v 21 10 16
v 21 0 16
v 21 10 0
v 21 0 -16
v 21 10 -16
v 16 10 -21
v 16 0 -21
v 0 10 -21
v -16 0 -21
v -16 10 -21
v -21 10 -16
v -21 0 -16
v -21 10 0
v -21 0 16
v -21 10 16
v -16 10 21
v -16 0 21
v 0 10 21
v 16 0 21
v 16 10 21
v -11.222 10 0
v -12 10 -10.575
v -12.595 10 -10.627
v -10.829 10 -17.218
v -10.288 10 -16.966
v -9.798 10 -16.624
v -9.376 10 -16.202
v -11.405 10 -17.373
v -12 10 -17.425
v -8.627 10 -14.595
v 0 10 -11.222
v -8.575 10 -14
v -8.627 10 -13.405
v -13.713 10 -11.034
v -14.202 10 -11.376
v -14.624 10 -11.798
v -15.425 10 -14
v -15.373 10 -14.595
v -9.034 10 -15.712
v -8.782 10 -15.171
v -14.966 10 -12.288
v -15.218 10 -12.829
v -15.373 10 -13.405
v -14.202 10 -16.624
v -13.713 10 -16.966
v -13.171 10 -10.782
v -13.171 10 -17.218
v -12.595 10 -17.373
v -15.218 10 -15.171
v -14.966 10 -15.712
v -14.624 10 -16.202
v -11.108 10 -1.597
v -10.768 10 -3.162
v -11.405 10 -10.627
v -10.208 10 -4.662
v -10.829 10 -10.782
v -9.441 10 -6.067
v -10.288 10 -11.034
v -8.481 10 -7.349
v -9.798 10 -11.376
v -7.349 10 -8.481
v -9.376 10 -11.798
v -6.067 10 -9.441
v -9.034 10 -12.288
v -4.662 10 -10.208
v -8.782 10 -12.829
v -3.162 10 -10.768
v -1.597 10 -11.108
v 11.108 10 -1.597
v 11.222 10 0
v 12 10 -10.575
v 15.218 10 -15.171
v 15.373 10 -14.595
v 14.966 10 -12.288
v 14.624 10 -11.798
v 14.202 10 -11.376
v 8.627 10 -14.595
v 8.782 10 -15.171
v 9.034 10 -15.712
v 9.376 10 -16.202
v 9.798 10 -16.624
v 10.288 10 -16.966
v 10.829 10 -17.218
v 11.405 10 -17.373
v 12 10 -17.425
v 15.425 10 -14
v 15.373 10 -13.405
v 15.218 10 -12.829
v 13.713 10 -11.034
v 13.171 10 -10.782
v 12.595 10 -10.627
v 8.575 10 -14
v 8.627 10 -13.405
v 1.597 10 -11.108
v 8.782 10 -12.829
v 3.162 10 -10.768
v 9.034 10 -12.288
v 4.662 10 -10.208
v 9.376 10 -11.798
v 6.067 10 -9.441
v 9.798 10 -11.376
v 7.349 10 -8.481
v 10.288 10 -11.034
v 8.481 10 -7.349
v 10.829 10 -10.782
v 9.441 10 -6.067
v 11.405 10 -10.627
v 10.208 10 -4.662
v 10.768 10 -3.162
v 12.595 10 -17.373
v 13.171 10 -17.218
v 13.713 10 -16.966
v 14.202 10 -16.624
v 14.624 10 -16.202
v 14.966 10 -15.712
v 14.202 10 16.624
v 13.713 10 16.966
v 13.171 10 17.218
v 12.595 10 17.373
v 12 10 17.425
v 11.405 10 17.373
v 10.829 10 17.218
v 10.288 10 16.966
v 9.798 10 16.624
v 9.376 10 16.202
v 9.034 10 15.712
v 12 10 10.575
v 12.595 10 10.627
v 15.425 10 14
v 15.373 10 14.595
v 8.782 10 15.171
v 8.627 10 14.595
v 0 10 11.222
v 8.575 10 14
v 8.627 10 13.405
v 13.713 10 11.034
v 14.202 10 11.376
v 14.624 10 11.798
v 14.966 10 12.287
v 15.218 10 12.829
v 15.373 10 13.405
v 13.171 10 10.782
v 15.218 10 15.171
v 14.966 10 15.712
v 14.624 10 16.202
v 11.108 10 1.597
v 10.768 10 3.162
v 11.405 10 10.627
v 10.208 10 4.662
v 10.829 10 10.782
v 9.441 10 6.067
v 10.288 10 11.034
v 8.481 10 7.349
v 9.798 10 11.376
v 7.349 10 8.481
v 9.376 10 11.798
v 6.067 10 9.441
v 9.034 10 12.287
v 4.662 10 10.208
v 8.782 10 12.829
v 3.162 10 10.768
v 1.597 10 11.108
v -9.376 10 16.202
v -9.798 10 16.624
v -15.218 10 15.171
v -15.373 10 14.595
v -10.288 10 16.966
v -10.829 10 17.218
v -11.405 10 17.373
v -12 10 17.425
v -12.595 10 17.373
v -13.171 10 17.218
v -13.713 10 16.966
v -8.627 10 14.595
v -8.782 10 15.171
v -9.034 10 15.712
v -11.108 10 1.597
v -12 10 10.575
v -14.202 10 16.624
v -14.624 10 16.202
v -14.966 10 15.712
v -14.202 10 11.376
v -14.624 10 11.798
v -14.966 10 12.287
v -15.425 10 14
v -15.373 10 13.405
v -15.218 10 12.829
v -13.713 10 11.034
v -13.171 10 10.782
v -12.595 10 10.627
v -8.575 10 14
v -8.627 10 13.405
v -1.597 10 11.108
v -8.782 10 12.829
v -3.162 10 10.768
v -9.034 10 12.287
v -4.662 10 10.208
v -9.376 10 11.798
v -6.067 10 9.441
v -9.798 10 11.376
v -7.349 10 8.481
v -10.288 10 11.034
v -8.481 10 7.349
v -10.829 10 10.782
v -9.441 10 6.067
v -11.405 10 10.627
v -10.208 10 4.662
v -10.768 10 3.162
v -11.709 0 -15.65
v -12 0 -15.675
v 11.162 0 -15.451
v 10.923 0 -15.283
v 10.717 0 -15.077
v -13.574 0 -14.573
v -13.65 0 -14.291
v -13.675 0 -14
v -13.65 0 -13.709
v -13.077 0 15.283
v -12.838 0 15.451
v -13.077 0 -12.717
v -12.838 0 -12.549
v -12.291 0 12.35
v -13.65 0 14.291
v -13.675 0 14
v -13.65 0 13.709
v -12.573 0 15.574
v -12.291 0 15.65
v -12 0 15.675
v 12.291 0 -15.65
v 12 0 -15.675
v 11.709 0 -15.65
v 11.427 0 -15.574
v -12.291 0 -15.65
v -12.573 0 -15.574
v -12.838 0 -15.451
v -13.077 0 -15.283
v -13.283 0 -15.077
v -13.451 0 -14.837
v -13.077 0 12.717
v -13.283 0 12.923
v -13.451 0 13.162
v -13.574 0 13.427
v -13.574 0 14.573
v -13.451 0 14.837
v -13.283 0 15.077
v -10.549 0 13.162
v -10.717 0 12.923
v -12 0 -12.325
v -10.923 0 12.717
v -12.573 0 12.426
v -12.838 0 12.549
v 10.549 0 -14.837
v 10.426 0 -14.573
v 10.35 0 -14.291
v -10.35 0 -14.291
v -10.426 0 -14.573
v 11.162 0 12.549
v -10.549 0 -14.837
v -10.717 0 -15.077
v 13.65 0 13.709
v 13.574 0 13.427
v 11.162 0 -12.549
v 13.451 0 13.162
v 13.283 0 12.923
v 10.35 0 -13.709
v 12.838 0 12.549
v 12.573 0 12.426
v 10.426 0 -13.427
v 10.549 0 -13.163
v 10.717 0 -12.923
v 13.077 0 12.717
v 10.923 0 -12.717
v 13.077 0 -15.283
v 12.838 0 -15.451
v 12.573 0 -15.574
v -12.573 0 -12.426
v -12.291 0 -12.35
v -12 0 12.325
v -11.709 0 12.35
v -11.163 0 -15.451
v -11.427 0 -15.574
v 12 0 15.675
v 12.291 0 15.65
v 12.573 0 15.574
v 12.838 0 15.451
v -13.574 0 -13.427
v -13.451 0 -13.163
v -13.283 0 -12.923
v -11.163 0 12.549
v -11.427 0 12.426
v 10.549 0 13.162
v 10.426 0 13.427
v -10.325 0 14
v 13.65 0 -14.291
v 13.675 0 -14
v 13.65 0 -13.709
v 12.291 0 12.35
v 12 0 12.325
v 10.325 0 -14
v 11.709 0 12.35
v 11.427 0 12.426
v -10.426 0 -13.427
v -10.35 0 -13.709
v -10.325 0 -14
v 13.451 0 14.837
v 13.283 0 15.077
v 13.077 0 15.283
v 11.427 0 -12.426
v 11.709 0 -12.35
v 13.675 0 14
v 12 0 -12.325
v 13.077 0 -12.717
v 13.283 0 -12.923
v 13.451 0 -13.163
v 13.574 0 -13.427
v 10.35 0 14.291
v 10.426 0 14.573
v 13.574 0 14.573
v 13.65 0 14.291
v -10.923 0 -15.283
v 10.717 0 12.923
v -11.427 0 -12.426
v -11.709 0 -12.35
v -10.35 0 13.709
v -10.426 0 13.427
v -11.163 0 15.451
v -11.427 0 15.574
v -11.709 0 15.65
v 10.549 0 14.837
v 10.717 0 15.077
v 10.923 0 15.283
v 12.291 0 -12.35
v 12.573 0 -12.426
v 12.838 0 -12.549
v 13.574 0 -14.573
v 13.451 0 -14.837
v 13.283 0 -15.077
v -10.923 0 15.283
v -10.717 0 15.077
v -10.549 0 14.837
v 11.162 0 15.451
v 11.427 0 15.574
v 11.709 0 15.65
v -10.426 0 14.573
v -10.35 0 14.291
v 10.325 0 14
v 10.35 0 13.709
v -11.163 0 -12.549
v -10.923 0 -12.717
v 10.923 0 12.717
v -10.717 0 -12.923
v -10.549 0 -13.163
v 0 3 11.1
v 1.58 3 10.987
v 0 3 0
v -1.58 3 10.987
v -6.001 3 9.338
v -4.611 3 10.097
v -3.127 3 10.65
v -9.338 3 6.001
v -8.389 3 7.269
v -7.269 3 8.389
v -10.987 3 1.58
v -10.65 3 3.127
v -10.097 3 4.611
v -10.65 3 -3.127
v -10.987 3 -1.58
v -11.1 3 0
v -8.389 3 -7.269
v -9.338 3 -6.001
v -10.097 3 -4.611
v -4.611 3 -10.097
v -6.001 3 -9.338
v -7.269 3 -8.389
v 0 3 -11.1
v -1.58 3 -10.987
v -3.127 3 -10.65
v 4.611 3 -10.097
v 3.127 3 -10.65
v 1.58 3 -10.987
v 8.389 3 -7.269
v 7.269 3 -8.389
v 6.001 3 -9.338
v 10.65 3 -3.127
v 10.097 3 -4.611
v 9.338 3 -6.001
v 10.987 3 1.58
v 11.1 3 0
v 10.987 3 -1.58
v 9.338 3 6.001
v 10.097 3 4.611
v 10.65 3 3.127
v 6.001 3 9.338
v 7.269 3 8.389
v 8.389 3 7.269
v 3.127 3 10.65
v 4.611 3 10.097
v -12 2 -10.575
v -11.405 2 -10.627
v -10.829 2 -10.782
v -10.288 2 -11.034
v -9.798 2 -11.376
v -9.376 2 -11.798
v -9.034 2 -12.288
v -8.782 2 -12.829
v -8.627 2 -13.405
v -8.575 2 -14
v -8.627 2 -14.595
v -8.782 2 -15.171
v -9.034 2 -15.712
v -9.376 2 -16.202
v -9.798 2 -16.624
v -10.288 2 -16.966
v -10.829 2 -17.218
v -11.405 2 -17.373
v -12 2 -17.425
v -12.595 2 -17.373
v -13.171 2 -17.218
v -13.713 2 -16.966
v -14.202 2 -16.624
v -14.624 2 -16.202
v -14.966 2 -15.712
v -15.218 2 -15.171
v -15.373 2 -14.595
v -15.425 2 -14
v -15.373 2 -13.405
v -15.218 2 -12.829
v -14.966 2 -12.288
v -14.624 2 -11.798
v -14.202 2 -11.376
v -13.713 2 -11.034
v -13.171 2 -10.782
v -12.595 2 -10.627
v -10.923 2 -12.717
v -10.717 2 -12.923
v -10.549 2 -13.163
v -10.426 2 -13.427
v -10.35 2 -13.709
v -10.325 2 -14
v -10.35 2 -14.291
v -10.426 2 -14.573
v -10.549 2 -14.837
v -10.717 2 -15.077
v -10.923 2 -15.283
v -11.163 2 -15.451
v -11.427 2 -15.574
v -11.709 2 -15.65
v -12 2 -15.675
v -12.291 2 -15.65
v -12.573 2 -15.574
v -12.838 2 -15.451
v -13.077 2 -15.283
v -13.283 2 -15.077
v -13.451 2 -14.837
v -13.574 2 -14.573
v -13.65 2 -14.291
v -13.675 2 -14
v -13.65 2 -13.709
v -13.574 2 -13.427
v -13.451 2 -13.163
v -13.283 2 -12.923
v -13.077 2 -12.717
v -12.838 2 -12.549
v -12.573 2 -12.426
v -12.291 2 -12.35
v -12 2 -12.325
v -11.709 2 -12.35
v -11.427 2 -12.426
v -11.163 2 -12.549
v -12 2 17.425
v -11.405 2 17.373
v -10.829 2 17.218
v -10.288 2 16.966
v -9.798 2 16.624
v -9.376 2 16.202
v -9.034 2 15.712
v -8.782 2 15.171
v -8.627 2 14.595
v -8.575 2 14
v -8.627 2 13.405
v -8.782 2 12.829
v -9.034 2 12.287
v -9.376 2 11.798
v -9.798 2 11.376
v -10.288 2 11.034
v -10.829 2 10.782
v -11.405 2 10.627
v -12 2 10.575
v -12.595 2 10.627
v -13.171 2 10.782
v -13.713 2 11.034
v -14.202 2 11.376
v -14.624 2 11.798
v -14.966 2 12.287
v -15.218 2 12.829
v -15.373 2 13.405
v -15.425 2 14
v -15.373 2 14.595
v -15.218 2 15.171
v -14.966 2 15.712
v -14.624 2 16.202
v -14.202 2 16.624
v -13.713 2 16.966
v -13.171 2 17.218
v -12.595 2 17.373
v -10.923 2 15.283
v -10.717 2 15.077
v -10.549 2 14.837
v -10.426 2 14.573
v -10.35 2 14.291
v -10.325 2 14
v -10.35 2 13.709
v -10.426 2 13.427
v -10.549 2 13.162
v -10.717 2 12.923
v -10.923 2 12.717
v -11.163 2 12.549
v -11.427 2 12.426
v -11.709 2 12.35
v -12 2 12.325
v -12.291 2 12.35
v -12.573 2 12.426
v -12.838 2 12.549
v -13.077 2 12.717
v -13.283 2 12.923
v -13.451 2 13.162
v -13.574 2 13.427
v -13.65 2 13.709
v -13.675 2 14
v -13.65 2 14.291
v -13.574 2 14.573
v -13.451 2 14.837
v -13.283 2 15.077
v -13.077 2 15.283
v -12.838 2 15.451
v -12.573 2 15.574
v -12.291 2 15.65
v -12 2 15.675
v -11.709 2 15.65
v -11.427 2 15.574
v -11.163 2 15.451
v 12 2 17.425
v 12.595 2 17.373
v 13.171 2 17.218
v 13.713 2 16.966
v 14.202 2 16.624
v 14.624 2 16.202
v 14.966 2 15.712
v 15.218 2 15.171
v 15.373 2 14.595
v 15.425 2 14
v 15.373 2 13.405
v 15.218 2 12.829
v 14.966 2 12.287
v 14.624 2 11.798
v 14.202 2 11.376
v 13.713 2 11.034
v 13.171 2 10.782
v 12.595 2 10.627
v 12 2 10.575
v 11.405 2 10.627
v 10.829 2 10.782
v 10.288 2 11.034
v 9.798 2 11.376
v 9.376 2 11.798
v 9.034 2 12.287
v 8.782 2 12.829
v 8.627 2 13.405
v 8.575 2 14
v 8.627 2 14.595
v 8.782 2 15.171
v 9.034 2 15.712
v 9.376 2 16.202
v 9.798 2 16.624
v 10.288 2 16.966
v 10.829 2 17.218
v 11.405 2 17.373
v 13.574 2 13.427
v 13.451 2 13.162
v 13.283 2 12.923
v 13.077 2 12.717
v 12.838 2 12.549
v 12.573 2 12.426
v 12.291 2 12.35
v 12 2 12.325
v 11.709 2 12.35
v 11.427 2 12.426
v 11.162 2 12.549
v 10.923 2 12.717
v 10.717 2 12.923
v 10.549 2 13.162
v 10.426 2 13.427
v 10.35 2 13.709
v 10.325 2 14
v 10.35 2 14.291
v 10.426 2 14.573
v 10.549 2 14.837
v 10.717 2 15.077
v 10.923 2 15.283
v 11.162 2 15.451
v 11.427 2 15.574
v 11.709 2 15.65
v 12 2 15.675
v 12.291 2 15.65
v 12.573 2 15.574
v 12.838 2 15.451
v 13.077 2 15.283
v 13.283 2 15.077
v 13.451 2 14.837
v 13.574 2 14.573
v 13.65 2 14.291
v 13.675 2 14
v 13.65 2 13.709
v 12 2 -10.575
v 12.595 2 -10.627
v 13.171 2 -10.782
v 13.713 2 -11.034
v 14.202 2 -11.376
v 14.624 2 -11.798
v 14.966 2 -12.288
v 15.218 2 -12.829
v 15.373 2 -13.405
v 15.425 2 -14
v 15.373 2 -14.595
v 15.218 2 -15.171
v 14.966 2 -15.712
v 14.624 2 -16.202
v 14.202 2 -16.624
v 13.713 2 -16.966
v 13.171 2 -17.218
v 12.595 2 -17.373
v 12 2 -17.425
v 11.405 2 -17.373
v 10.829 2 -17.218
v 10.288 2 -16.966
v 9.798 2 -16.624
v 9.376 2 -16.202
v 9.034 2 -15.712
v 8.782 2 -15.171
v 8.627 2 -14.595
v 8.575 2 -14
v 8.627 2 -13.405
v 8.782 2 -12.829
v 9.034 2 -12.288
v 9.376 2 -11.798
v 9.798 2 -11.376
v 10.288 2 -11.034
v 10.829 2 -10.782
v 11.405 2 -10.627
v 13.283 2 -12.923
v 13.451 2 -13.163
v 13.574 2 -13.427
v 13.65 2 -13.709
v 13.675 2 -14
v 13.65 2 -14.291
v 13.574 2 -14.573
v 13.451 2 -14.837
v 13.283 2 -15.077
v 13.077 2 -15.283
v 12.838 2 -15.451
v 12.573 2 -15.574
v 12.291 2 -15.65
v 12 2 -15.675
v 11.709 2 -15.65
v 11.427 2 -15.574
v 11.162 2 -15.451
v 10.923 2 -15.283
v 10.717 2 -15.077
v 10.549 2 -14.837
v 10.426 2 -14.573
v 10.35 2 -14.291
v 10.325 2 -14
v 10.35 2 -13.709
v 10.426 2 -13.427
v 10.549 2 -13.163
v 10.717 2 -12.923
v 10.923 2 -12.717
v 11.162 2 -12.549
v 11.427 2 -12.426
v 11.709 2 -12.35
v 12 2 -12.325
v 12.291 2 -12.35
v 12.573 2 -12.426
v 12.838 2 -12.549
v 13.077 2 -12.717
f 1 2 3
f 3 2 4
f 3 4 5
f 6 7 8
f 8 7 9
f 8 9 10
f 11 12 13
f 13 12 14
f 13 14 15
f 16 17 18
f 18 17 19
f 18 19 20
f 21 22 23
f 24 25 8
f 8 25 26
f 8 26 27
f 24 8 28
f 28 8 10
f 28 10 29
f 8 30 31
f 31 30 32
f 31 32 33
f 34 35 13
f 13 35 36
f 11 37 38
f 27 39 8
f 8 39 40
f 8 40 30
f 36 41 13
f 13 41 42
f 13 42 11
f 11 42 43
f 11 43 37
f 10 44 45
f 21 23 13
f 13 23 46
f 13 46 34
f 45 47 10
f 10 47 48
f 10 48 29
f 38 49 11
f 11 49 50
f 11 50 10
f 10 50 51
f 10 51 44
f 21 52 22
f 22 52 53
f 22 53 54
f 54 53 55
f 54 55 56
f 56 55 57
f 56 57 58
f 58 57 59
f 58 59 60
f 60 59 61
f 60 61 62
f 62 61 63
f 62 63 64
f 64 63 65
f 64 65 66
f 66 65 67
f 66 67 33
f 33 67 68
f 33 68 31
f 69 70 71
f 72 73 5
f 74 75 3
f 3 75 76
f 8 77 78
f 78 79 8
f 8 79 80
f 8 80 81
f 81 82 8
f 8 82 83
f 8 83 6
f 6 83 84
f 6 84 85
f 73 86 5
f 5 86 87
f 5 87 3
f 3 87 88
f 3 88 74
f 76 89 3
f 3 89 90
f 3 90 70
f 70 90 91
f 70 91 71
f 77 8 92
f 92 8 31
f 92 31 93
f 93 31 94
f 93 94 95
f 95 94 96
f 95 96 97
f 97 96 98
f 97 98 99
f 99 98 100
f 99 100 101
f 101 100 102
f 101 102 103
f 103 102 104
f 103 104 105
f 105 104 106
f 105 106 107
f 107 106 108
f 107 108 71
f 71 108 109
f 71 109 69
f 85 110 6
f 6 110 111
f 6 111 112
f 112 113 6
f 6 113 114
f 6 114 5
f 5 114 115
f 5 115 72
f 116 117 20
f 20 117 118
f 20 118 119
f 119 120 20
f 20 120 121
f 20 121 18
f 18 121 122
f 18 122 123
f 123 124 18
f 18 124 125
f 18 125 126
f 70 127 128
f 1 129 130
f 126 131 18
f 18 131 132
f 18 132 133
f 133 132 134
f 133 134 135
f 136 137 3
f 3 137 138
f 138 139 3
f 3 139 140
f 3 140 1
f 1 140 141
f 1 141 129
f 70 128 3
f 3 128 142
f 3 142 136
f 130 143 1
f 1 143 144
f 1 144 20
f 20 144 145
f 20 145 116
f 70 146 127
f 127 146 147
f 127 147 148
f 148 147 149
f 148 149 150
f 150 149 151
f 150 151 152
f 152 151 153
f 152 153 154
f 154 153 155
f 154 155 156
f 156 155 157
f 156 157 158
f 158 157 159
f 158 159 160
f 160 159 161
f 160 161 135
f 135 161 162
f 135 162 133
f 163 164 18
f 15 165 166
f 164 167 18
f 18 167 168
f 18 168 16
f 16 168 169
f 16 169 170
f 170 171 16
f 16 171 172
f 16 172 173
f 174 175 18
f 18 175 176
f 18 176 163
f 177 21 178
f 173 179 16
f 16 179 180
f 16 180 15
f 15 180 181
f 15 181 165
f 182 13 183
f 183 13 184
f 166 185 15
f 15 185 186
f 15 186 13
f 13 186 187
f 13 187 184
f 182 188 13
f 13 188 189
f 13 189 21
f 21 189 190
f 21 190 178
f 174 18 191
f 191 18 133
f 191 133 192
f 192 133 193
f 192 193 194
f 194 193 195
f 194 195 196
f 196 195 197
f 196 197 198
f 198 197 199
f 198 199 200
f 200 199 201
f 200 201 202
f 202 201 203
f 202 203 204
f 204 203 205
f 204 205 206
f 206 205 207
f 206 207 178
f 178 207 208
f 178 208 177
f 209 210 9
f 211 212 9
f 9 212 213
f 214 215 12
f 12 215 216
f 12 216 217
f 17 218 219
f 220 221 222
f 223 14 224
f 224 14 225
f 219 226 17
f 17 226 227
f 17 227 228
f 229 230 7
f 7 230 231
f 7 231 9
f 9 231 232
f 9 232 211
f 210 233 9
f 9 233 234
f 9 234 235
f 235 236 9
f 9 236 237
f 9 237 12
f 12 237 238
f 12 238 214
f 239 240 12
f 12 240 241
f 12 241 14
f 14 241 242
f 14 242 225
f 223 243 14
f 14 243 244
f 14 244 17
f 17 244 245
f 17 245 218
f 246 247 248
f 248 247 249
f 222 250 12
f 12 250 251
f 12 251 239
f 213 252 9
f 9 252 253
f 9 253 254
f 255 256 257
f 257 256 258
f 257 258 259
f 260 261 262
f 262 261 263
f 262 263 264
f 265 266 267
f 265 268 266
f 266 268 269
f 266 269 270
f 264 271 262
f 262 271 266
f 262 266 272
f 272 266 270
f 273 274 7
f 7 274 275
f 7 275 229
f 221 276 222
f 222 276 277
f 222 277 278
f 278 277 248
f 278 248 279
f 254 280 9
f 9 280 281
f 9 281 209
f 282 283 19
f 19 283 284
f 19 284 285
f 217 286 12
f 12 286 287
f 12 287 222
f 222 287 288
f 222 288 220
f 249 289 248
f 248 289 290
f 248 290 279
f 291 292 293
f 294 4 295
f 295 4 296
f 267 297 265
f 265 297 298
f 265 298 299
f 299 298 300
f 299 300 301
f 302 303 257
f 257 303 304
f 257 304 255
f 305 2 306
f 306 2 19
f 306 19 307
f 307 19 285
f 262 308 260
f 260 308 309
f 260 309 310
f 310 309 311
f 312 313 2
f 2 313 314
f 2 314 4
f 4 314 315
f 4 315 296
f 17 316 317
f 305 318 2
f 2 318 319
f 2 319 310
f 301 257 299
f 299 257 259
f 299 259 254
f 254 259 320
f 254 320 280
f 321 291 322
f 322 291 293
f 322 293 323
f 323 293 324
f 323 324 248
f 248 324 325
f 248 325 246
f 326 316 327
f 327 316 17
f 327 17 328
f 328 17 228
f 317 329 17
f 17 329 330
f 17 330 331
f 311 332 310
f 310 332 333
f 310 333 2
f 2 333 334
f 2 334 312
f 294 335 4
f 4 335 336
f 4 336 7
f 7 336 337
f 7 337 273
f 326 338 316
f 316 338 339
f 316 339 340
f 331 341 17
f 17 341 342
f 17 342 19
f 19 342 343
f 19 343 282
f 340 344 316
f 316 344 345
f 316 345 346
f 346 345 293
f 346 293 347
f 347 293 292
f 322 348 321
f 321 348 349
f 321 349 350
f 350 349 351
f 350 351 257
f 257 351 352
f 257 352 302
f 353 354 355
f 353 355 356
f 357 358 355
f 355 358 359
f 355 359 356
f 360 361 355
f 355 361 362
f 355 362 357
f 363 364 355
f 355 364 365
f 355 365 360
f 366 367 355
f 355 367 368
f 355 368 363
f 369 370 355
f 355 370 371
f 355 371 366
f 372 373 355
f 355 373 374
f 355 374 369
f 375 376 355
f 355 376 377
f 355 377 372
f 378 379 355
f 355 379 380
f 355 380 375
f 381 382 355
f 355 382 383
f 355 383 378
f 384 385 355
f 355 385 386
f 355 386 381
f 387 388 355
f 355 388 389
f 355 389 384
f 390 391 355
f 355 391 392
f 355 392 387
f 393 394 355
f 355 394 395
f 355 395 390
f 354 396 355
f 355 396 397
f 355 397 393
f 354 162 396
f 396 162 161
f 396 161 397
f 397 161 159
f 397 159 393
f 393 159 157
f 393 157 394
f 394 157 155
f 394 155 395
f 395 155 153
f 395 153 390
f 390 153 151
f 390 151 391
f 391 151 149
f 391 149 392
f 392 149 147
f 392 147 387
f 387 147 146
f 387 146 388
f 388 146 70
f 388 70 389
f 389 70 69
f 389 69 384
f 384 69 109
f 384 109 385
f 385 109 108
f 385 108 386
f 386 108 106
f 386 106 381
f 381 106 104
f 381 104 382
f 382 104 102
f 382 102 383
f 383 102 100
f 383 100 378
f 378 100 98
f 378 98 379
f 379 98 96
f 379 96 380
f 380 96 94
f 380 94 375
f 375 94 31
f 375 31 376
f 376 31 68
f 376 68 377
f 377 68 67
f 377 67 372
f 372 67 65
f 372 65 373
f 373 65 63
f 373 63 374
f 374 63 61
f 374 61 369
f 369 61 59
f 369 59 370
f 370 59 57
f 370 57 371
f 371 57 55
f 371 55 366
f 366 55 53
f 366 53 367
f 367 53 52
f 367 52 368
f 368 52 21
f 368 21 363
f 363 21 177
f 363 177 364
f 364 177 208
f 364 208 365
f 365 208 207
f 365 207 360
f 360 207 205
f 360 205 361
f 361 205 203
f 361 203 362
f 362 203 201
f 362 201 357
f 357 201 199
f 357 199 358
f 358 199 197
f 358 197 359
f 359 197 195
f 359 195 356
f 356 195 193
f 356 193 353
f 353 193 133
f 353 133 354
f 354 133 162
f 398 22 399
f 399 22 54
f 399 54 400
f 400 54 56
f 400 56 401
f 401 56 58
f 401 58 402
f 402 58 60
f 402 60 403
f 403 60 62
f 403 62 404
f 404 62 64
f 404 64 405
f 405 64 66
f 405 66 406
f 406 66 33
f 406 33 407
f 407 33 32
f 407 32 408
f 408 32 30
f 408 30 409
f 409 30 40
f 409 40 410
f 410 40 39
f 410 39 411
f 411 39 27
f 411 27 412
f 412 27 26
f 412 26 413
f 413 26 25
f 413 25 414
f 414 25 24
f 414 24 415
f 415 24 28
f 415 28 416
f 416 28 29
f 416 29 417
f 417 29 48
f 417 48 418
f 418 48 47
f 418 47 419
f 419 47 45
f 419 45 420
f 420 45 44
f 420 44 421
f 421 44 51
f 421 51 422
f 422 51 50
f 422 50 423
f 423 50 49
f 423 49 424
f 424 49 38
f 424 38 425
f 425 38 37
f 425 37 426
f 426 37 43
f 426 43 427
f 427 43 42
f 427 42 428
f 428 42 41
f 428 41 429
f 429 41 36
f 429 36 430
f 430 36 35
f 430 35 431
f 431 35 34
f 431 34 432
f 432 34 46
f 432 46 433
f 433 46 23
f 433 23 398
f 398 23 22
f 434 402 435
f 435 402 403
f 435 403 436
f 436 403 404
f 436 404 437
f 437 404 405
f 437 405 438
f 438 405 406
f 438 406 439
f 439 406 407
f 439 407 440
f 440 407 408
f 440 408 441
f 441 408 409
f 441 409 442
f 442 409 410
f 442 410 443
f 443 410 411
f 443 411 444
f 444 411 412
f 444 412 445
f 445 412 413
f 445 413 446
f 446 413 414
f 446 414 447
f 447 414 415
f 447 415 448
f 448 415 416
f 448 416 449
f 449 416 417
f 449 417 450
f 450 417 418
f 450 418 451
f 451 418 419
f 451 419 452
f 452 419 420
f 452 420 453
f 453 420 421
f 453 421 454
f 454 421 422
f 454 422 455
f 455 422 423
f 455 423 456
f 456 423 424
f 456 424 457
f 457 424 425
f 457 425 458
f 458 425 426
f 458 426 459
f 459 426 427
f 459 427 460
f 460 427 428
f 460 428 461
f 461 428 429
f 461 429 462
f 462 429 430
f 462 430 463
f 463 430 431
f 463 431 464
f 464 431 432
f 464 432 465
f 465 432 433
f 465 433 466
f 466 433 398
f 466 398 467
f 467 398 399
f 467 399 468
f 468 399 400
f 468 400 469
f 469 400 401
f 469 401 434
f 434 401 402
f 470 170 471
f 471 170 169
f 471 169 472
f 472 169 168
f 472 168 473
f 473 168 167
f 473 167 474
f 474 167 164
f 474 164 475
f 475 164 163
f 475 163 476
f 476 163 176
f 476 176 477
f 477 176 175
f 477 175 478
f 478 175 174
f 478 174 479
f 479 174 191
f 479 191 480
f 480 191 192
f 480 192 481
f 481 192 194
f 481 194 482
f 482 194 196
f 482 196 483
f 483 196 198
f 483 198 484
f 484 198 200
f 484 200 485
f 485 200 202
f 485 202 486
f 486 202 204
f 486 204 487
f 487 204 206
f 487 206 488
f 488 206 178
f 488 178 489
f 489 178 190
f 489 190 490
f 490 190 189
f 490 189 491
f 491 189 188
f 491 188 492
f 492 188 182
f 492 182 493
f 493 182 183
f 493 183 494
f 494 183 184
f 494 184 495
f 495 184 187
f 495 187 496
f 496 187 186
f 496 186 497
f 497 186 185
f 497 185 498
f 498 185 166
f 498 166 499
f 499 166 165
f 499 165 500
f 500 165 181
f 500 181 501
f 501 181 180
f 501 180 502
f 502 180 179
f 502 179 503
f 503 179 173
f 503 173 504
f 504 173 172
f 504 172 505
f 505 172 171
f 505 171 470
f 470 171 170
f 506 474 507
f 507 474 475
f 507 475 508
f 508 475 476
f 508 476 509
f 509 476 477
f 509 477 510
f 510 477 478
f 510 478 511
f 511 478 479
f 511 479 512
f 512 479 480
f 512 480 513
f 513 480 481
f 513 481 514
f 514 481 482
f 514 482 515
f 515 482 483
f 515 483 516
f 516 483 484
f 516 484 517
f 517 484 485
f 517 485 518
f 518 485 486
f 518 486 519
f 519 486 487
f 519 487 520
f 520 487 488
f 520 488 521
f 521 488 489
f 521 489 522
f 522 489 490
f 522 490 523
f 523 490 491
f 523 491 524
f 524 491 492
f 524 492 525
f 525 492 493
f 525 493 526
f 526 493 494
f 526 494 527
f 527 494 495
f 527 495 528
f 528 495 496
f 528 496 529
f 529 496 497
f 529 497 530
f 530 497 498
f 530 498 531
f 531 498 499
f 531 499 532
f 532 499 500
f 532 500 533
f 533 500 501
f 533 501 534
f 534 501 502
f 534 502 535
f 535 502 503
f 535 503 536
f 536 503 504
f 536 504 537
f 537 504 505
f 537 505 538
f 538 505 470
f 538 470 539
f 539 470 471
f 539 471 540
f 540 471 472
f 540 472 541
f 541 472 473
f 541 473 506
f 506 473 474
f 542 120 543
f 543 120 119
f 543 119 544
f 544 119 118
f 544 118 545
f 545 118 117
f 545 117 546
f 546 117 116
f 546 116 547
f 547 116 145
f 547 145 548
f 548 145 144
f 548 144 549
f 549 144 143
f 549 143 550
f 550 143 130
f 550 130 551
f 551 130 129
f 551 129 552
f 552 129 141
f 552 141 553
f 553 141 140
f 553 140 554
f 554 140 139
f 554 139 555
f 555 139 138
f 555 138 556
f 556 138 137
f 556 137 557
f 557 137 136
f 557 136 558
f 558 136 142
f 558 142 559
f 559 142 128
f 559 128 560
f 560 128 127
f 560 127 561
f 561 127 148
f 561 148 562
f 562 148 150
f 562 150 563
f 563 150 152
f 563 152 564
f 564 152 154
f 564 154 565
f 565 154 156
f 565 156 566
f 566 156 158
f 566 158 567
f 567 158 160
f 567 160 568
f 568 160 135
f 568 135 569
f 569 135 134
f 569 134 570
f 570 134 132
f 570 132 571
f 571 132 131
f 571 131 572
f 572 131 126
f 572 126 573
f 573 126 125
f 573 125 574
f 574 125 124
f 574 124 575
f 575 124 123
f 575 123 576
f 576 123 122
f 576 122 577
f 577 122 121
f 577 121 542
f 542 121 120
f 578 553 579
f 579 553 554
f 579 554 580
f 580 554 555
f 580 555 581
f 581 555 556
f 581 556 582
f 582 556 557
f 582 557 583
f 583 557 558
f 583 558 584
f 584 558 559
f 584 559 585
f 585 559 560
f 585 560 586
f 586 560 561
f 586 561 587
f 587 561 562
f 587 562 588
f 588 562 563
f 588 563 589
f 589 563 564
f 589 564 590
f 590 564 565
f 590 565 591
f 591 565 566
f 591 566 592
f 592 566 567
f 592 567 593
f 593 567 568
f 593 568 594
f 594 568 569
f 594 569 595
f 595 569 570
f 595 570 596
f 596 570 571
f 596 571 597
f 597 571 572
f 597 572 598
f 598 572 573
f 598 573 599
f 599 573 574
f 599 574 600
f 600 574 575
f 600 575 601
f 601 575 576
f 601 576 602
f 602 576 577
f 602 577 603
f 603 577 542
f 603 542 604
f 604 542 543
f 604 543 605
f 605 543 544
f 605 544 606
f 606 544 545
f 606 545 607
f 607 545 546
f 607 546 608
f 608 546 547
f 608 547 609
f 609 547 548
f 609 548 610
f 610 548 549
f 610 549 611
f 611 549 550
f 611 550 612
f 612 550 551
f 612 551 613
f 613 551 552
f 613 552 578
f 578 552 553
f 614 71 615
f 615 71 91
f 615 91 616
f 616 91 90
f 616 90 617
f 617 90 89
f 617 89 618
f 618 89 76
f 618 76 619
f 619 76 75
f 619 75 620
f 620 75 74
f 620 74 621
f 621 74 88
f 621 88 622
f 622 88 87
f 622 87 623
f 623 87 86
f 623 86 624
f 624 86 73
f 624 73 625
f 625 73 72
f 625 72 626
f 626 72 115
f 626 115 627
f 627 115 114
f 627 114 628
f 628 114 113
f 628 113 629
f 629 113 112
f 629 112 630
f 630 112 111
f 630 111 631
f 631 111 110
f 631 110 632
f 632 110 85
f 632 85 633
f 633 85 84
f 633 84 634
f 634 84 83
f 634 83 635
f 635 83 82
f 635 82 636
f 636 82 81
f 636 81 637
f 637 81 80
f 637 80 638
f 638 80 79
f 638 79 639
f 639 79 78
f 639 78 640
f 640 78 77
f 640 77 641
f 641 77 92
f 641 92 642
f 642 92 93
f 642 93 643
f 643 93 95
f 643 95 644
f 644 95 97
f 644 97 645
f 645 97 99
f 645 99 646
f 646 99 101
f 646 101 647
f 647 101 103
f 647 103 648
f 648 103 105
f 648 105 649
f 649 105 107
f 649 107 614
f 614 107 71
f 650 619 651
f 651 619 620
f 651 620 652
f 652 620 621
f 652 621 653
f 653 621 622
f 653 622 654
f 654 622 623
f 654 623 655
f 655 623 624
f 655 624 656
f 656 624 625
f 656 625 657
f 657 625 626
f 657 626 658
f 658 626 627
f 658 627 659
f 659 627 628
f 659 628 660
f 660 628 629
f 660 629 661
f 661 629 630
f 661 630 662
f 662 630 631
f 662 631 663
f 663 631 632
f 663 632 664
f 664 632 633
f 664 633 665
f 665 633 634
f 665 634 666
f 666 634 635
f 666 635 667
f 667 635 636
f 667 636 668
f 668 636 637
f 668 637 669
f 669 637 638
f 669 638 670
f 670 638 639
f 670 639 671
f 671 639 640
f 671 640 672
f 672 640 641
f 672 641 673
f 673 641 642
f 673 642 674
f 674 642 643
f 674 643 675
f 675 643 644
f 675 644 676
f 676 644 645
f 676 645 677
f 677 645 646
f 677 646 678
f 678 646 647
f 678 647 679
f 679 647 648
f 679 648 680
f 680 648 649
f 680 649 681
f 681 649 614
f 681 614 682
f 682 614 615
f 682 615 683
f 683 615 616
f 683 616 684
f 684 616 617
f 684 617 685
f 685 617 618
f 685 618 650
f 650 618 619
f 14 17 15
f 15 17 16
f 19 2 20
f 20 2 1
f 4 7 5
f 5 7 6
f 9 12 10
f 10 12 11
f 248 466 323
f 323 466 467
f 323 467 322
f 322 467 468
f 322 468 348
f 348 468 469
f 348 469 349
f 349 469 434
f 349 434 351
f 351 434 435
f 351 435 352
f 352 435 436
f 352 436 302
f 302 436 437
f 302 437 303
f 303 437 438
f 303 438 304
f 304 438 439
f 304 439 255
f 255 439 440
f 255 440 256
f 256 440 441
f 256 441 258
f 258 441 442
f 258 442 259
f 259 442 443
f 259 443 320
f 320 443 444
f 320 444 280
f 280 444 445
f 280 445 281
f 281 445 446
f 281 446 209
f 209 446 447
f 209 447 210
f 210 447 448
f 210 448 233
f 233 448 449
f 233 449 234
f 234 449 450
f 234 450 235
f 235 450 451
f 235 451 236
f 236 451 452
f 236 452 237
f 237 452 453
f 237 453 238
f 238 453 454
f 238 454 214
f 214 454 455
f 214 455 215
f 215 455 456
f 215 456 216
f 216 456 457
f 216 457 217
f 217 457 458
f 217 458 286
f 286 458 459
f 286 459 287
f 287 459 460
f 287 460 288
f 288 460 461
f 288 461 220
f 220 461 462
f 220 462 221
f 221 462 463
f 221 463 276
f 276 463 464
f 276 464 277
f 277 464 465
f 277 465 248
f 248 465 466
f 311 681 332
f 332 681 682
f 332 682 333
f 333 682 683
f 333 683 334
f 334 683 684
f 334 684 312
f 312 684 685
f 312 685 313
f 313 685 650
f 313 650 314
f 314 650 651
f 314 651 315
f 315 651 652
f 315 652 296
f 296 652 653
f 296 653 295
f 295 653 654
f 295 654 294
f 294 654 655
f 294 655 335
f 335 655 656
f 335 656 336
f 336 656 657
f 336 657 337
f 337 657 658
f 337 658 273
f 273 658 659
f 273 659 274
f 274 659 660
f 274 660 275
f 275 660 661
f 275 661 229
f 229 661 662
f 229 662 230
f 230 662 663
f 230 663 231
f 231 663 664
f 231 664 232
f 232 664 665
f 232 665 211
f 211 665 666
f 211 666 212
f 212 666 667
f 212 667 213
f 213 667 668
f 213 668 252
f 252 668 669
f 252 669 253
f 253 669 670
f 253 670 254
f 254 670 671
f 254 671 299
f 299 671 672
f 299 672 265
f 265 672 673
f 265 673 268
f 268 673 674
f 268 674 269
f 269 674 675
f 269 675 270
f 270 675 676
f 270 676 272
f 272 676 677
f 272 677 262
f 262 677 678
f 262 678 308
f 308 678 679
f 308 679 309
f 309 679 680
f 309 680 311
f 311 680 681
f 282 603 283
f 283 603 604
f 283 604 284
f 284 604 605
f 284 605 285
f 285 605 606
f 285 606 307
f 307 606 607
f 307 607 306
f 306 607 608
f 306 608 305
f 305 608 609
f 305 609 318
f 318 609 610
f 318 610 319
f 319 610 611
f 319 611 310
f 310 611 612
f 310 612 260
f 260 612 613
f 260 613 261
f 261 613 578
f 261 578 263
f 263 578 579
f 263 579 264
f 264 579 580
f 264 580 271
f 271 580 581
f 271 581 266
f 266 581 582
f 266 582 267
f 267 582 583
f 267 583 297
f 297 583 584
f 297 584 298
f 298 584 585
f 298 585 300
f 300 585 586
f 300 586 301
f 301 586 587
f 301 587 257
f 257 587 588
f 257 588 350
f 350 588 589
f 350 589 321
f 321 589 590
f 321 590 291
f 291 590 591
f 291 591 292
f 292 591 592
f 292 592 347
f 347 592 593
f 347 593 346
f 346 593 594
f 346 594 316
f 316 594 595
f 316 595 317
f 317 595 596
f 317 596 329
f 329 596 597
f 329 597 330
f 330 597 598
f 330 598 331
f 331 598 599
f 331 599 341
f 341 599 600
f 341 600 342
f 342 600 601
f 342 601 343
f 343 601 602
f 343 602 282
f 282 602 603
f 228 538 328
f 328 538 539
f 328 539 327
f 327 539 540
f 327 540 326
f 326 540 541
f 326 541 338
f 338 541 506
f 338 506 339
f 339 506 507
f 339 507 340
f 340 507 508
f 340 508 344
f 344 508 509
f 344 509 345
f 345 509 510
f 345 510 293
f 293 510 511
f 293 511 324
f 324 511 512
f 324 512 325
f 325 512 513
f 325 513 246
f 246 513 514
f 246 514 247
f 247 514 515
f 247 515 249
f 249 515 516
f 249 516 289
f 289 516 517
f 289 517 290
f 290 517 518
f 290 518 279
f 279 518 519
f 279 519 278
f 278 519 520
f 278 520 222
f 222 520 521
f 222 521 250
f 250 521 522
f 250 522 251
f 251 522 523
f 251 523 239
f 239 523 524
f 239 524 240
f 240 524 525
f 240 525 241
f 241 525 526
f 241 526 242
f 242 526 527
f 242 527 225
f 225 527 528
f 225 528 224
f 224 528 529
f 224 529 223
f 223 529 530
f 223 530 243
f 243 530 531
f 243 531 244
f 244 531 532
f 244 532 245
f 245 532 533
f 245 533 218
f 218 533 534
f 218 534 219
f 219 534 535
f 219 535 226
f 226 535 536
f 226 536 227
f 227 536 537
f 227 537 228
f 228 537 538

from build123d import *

# Parameters (mm, degrees)
SKETCH1_W           = 42
SKETCH1_H           = 42
BOSS_EXTRUDE1_DEPTH = 10
SKETCH2_R           = 11.1
CUT_EXTRUDE1_DEPTH  = 7
CHAMFER1_SIZE       = 0.122185454
CHAMFER1_SIZE_2     = 7
SKETCH3_R           = 3.425
CUT_EXTRUDE2_DEPTH  = 8
CHAMFER2_SIZE       = 5
CUT_EXTRUDE3_REACH  = 32.757
SKETCH4_R           = 1.675


with BuildPart() as part:
    # Sketch1 → Boss-Extrude1 (new body)
    with BuildSketch(Plane(origin=(0, 0, 0), x_dir=(1, 0, 0), z_dir=(0, 1, 0))):
        Rectangle(SKETCH1_W, SKETCH1_H)
    extrude(amount=BOSS_EXTRUDE1_DEPTH)

    # Sketch2 → Cut-Extrude1 (cut)
    with BuildSketch(Plane(origin=(0, 10, 0), x_dir=(1, 0, 0), z_dir=(0, 1, 0))):
        with Locations(Location((0, 0, 0), (0, 0, 270))):
            Circle(SKETCH2_R)
    extrude(amount=-CUT_EXTRUDE1_DEPTH, mode=Mode.SUBTRACT)

    # Chamfer1
    # the kernel refuses this chamfer: 7, 0.122185454 mm, written as the material it takes off along each edge
    with BuildSketch(Plane(origin=(0, 10, 0), x_dir=(0, 0, 1), z_dir=(-1, 0, 0))) as chamfer1_piece_1_section:
        Polygon((11.1 + CHAMFER1_SIZE * 1.00000000407, 0), (11.1, -CHAMFER1_SIZE_2), (11.1, 0), align=None)
    chamfer1_piece_1 = revolve(axis=Axis((0, 10, 0), (0, 1, 0)), mode=Mode.PRIVATE)
    chamfer1_piece_1 = split(chamfer1_piece_1, bisect_by=Plane(origin=(0, 3, -11.117232441), z_dir=(0, 1, 0)), keep=Keep.TOP, mode=Mode.PRIVATE)
    add(chamfer1_piece_1, mode=Mode.SUBTRACT)

    # Sketch3 → Cut-Extrude2 (cut)
    with BuildSketch(Plane(origin=(0, 10, 0), x_dir=(1, 0, 0), z_dir=(0, 1, 0))):
        with Locations(Location((-12, 14, 0), (0, 0, 270))):
            Circle(SKETCH3_R)
        with Locations(Location((-12, -14, 0), (0, 0, 90))):
            Circle(SKETCH3_R)
        with Locations(Location((12, -14, 0), (0, 0, 270))):
            Circle(SKETCH3_R)
        with Locations(Location((12, 14, 0), (0, 0, 90))):
            Circle(SKETCH3_R)
    extrude(amount=-CUT_EXTRUDE2_DEPTH, mode=Mode.SUBTRACT)

    # Chamfer2
    chamfer2_edges = [part.edges().sort_by_distance(p)[0] for p in [
        (21, 5, 21),
        (-21, 5, 21),
        (-21, 5, -21),
        (21, 5, -21),
    ]]
    chamfer(chamfer2_edges, length=CHAMFER2_SIZE)

    # Sketch4 → Cut-Extrude3 (cut, up to next)
    with BuildSketch(Plane(origin=(0, 2, 0), x_dir=(1, 0, 0), z_dir=(0, 1, 0)), mode=Mode.PRIVATE) as cut_extrude3_sk1:
        with Locations(Location((-12, 14, 0), (0, 0, 270))):
            Circle(SKETCH4_R)
    cut_extrude3_tool1 = extrude(cut_extrude3_sk1.sketch, amount=-CUT_EXTRUDE3_REACH, mode=Mode.PRIVATE) & part.part
    # Sketch4 → Cut-Extrude3 (cut, up to next)
    with BuildSketch(Plane(origin=(0, 2, 0), x_dir=(1, 0, 0), z_dir=(0, 1, 0)), mode=Mode.PRIVATE) as cut_extrude3_sk2:
        with Locations(Location((12, 14, 0), (0, 0, 90))):
            Circle(SKETCH4_R)
    cut_extrude3_tool2 = extrude(cut_extrude3_sk2.sketch, amount=-CUT_EXTRUDE3_REACH, mode=Mode.PRIVATE) & part.part
    # Sketch4 → Cut-Extrude3 (cut, up to next)
    with BuildSketch(Plane(origin=(0, 2, 0), x_dir=(1, 0, 0), z_dir=(0, 1, 0)), mode=Mode.PRIVATE) as cut_extrude3_sk3:
        with Locations(Location((12, -14, 0), (0, 0, 270))):
            Circle(SKETCH4_R)
    cut_extrude3_tool3 = extrude(cut_extrude3_sk3.sketch, amount=-CUT_EXTRUDE3_REACH, mode=Mode.PRIVATE) & part.part
    # Sketch4 → Cut-Extrude3 (cut, up to next)
    with BuildSketch(Plane(origin=(0, 2, 0), x_dir=(1, 0, 0), z_dir=(0, 1, 0)), mode=Mode.PRIVATE) as cut_extrude3_sk4:
        with Locations(Location((-12, -14, 0), (0, 0, 90))):
            Circle(SKETCH4_R)
    cut_extrude3_tool4 = extrude(cut_extrude3_sk4.sketch, amount=-CUT_EXTRUDE3_REACH, mode=Mode.PRIVATE) & part.part
    add(cut_extrude3_tool1.solids().sort_by_distance((-12, 2, -14))[0], mode=Mode.SUBTRACT)
    add(cut_extrude3_tool2.solids().sort_by_distance((12, 2, -14))[0], mode=Mode.SUBTRACT)
    add(cut_extrude3_tool3.solids().sort_by_distance((12, 2, 14))[0], mode=Mode.SUBTRACT)
    add(cut_extrude3_tool4.solids().sort_by_distance((-12, 2, 14))[0], mode=Mode.SUBTRACT)


solid = part.part
